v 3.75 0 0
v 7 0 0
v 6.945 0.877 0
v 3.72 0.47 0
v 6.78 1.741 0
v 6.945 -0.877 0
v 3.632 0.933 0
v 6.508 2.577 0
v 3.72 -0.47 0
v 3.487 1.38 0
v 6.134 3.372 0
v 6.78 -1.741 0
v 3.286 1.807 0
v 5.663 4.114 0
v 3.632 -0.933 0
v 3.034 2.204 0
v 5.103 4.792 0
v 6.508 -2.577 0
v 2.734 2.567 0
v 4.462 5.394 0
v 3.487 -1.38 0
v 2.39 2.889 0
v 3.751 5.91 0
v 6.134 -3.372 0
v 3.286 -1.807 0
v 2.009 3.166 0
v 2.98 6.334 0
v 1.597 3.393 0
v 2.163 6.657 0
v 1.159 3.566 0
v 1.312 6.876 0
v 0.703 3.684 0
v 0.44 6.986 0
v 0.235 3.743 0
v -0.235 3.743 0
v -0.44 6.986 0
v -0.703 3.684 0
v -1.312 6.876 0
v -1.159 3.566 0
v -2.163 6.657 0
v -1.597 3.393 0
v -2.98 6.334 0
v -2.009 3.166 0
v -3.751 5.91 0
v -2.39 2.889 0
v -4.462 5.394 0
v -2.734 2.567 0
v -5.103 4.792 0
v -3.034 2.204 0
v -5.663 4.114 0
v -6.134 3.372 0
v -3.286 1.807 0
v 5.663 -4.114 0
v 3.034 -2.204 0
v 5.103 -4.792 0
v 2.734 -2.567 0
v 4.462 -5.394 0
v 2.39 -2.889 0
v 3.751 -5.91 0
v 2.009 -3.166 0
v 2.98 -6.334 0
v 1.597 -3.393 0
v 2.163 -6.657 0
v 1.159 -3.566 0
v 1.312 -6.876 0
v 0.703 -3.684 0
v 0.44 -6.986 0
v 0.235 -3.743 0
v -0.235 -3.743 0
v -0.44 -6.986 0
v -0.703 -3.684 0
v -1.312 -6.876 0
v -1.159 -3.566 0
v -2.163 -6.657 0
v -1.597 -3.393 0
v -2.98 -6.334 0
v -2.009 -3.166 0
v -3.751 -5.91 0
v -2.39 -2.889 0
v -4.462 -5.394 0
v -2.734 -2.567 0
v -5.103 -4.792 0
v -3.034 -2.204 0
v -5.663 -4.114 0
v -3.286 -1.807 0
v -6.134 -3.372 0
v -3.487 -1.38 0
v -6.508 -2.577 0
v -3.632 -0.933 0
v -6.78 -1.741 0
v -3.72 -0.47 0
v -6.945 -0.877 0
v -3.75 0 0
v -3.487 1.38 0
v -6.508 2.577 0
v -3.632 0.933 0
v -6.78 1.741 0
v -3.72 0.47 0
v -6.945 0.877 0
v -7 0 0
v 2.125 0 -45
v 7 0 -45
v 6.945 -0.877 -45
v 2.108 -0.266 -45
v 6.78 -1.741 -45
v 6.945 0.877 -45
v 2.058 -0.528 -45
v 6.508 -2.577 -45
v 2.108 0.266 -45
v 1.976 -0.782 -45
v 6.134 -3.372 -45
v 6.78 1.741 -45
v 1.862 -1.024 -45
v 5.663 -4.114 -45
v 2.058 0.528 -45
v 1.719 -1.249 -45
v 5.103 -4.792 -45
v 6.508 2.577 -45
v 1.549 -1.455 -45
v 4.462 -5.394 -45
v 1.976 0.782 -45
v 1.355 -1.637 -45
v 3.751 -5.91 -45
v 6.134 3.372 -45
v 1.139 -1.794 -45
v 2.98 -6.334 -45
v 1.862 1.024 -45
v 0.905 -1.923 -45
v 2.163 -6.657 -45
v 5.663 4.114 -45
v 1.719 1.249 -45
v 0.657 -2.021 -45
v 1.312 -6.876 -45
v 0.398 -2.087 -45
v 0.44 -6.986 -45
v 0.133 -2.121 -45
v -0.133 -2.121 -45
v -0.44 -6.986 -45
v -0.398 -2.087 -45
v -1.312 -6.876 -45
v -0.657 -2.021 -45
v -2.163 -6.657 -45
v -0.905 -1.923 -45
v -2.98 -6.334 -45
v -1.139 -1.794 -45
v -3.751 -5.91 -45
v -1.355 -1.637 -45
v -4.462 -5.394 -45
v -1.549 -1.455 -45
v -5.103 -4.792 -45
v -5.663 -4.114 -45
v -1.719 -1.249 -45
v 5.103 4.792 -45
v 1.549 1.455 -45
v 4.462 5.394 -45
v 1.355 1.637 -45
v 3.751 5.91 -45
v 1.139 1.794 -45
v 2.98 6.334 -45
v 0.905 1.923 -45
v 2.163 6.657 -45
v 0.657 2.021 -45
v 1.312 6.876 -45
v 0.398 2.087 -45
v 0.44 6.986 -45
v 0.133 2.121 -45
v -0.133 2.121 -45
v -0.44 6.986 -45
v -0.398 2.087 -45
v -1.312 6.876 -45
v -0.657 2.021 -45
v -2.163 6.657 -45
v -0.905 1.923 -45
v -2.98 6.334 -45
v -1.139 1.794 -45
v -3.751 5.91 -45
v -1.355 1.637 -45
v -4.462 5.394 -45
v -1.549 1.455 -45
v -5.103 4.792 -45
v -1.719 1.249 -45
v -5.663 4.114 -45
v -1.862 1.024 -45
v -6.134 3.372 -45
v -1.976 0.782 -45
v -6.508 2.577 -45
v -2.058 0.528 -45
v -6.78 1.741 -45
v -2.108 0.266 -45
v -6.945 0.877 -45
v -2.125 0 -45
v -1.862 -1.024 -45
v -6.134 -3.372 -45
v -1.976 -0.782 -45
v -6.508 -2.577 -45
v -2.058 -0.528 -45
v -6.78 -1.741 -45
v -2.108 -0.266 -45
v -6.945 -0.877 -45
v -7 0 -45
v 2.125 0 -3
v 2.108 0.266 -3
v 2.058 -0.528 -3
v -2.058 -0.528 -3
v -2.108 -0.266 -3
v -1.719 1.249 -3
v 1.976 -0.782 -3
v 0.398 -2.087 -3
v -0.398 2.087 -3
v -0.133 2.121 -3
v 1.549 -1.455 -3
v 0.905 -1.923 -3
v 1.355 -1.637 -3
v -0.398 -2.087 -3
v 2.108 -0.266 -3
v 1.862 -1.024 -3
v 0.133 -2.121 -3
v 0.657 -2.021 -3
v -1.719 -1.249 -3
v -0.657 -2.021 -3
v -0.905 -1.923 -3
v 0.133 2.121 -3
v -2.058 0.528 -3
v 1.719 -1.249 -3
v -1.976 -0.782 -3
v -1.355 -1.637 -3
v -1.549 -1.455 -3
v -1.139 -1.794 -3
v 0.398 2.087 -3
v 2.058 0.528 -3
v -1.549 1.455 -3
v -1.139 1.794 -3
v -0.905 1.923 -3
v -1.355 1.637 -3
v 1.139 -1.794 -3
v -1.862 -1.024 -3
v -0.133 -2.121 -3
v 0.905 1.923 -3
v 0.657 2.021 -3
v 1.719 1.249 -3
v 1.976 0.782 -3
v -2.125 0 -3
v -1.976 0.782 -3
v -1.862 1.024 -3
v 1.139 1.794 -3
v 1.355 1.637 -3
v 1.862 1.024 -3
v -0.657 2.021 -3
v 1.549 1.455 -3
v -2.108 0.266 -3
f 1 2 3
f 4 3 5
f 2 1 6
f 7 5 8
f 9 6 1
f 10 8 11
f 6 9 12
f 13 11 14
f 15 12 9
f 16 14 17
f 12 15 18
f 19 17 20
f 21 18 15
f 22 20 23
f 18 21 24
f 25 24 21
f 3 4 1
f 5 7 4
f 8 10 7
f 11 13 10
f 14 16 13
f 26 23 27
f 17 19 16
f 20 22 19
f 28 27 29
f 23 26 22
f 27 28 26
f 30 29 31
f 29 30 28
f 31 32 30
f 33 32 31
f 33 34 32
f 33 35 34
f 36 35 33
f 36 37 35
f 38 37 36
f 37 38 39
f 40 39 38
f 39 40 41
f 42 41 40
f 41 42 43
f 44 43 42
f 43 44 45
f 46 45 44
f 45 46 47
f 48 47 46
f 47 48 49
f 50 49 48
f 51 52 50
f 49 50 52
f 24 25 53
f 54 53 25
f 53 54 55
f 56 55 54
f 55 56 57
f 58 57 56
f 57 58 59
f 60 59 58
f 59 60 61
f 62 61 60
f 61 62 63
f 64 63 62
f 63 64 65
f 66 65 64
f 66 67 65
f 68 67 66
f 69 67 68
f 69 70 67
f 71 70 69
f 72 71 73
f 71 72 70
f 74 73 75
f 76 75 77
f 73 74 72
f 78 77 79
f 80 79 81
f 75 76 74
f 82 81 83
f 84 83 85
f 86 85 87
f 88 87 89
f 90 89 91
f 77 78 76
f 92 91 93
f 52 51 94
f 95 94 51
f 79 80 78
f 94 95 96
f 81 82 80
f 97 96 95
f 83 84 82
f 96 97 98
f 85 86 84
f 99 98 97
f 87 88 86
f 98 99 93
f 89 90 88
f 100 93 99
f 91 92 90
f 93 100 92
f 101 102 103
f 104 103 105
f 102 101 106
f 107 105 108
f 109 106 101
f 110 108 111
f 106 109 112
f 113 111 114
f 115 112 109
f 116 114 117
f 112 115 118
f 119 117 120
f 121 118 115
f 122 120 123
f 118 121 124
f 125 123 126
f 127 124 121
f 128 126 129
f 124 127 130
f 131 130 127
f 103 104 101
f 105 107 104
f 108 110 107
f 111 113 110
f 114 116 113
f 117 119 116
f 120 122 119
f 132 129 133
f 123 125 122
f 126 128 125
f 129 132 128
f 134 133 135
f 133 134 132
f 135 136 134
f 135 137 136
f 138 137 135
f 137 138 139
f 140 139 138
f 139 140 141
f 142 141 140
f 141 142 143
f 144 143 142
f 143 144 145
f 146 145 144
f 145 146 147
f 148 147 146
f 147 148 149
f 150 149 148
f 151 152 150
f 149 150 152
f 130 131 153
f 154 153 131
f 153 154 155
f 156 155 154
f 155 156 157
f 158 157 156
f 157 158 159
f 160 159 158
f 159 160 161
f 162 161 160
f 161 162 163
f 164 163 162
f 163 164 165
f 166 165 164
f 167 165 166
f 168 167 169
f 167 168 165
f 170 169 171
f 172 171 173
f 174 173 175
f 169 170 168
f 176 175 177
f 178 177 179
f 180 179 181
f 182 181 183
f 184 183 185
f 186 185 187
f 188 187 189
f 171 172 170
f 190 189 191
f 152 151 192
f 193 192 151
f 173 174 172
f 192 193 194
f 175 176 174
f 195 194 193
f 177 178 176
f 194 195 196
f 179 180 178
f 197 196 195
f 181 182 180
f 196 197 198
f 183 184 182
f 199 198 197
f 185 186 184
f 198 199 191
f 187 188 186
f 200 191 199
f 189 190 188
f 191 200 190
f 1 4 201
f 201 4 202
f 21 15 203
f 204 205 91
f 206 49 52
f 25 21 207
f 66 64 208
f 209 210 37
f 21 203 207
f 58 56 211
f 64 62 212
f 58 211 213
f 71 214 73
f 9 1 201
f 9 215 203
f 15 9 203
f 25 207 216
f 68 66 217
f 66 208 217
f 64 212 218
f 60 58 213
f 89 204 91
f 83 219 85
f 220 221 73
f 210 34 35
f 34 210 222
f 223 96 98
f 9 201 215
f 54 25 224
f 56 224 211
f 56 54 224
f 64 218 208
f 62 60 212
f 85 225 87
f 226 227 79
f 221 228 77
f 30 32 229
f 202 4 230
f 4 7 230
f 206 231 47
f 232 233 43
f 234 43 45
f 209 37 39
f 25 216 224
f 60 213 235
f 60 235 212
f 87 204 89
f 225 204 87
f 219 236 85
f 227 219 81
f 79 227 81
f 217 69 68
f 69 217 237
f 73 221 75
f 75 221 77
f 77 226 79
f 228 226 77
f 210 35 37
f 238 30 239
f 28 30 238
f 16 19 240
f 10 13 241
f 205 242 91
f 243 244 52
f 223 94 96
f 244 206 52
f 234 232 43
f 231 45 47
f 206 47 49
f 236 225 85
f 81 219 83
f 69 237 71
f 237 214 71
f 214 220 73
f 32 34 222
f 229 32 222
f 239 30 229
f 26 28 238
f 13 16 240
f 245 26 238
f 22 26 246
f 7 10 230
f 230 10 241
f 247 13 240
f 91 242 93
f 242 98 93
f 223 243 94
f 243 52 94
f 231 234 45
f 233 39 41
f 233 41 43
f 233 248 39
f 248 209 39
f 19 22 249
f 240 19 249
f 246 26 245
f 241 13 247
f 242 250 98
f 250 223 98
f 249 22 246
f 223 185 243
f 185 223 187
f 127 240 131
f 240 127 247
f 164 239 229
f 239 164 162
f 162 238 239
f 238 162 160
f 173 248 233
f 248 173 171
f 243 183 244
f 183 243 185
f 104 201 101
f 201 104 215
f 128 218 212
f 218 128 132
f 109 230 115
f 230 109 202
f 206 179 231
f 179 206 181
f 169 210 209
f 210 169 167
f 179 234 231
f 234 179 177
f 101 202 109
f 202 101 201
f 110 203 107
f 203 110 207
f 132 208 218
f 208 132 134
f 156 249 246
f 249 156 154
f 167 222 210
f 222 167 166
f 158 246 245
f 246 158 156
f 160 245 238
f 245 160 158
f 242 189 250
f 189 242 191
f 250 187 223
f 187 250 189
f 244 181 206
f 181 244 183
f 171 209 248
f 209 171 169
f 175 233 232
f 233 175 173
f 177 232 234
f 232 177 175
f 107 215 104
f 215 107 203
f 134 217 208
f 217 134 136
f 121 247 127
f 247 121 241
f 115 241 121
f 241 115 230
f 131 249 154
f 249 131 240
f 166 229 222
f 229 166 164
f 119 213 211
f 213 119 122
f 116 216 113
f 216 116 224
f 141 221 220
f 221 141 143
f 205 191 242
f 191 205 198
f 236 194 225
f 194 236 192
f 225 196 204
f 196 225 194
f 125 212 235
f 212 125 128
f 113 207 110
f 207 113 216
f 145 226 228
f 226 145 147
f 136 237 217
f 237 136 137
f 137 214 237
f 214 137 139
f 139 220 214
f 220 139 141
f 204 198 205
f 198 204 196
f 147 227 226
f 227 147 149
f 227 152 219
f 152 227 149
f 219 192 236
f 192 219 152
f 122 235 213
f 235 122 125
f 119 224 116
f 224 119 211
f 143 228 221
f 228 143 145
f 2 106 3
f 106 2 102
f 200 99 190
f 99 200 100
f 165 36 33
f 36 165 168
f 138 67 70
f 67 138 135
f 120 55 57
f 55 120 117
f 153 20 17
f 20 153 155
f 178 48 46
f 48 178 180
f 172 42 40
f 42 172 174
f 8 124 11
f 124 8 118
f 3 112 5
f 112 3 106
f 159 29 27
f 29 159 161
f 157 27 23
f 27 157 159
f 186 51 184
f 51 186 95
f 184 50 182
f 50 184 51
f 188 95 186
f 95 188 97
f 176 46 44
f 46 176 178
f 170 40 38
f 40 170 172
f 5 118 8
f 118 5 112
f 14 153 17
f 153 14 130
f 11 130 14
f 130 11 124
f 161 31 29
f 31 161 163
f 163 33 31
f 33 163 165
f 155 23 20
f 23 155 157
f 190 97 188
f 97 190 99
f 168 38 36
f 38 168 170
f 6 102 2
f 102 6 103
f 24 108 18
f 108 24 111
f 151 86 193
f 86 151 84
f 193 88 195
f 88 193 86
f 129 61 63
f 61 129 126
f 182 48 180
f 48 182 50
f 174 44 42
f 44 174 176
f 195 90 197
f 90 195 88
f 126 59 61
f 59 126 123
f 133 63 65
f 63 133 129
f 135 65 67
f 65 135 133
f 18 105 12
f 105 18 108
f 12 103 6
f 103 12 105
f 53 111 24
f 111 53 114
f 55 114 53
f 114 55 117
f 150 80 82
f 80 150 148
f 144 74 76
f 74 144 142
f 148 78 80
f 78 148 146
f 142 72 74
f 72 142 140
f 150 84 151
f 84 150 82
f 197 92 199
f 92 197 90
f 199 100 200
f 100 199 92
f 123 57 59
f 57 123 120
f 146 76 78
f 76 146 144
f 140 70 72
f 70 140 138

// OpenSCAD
$fn = 50;


difference() {
	union() {
		translate(v = [0, 0, -45.0000000000]) {
			cylinder(h = 45, r = 7.0000000000);
		}
		cylinder(h = 0, r = 16.0000000000);
	}
	union() {
		translate(v = [0, 0, 0]) {
			rotate(a = [0, 0, 0]) {
				difference() {
					union() {
						#translate(v = [0, 0, -45.0000000000]) {
							cylinder(h = 45, r = 2.0000000000);
						}
						#translate(v = [0, 0, -3]) {
							cylinder(h = 3, r = 7.0000000000, r1 = 2.1250000000, r2 = 3.7500000000);
						}
						#translate(v = [0, 0, -45.0000000000]) {
							cylinder(h = 45, r = 2.1250000000);
						}
						#translate(v = [0, 0, -45.0000000000]) {
							cylinder(h = 45, r = 2.0000000000);
						}
					}
					union();
				}
			}
		}
	}
}
